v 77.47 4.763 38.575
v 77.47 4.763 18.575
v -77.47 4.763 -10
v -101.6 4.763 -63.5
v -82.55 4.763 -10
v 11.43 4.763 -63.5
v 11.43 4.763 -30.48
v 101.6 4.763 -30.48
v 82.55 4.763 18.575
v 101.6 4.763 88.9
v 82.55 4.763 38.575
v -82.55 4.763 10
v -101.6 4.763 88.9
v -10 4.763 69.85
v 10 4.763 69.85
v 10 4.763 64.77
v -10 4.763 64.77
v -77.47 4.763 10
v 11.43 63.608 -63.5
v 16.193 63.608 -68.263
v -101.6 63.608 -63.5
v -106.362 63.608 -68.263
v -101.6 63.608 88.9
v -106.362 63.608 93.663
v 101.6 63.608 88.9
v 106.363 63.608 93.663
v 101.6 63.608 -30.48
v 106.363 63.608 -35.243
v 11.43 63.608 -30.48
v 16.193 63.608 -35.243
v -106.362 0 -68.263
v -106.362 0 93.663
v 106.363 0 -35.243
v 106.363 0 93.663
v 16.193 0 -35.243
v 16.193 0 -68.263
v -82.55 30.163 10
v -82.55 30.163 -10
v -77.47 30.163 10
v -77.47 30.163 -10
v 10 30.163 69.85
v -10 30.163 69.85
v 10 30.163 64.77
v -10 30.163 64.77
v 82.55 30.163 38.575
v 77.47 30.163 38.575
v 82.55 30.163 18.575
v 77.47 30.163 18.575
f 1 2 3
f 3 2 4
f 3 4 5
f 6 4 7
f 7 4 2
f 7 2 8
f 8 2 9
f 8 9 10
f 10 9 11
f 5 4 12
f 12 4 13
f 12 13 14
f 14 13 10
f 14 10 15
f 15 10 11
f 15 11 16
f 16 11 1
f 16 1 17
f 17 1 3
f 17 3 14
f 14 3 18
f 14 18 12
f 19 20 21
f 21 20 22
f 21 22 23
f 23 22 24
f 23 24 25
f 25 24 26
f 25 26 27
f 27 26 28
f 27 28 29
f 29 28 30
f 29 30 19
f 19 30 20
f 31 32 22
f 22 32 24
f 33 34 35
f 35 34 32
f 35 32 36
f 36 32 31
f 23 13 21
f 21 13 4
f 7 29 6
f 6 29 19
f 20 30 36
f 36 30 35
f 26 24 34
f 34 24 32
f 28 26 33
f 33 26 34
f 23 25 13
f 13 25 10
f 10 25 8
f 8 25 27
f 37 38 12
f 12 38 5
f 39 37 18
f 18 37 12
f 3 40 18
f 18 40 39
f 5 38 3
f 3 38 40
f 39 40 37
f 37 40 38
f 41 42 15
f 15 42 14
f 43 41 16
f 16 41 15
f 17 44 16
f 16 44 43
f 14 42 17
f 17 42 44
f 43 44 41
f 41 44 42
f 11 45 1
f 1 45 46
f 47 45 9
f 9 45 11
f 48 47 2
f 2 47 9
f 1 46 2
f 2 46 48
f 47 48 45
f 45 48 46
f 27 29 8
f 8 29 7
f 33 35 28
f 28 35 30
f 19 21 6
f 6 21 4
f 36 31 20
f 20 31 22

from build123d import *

# Parameters (mm, degrees)
CROQUIS1_W              = 212.725
CROQUIS1_H              = 187.325
CROQUIS1_W_2            = 203.2
CROQUIS1_H_2            = 177.8
SALIENTE_EXTRUIR1_DEPTH = 63.607999784
VACIADO1_T              = -4.7625
CROQUIS2_W              = 20
CROQUIS2_H              = 5.08
CROQUIS2_W_2            = 5.08
CROQUIS2_H_2            = 20
SALIENTE_EXTRUIR3_DEPTH = 25.4
CROQUIS2_5_W            = 5.08
CROQUIS2_5_H            = 20
CROQUIS2_5_W_2          = 20
CROQUIS2_5_H_2          = 5.08
SALIENTE_EXTRUIR4_DEPTH = 6.5
CROQUIS3_W              = 94.9325
CROQUIS3_H              = 63.1825
CORTAR_EXTRUIR1_DEPTH   = 156.343564234
SALIENTE_EXTRUIR5_DEPTH = 63.607999784
CROQUIS5_W              = 122.555
CROQUIS5_H              = 30.1625
CORTAR_EXTRUIR2_DEPTH   = 156.343564234
CROQUIS6_W              = 122.555
CROQUIS6_H              = 4.7625
SALIENTE_EXTRUIR6_DEPTH = 63.607999784
CROQUIS7_W              = 154.94
CROQUIS7_H              = 82.660152575
CORTAR_EXTRUIR3_DEPTH   = 58.845499784


with BuildPart() as part:
    # Croquis1 → Saliente-Extruir1 (new body)
    # profile 1 of 2: a face of its own
    with BuildSketch(Plane(origin=(0, 0, 0), x_dir=(1, 0, 0), z_dir=(0, 1, 0))):
        Rectangle(CROQUIS1_W, CROQUIS1_H)
        Rectangle(CROQUIS1_W_2, CROQUIS1_H_2, mode=Mode.SUBTRACT)
    # profile 2 of 2: a face of its own
    with BuildSketch(Plane(origin=(0, 0, 0), x_dir=(1, 0, 0), z_dir=(0, 1, 0))):
        Rectangle(CROQUIS1_W_2, CROQUIS1_H_2)
    extrude(amount=SALIENTE_EXTRUIR1_DEPTH)

    # Vaciado1
    vaciado1_openings = [part.faces().sort_by_distance(p)[0] for p in [
        (0, 63.607999784, 0),
    ]]
    offset(amount=VACIADO1_T, openings=vaciado1_openings, kind=Kind.INTERSECTION)

    # Croquis2 → Saliente-Extruir3 (add)
    with BuildSketch(Plane(origin=(0, 4.7625, 0), x_dir=(1, 0, 0), z_dir=(0, 1, 0))):
        with Locations((-44.45, 66.04)):
            Rectangle(CROQUIS2_W, CROQUIS2_H)
        with Locations((-80.01, 0)):
            Rectangle(CROQUIS2_W_2, CROQUIS2_H_2)
        with Locations((0, -67.31)):
            Rectangle(CROQUIS2_W, CROQUIS2_H)
        with Locations((80.01, -28.575)):
            Rectangle(CROQUIS2_W_2, CROQUIS2_H_2)
    extrude(amount=SALIENTE_EXTRUIR3_DEPTH)

    # Croquis2<5> → Saliente-Extruir4 (add)
    with BuildSketch(Plane(origin=(0, 4.7625, 0), x_dir=(1, 0, 0), z_dir=(0, 1, 0))):
        with Locations((-74.93, 0)):
            Rectangle(CROQUIS2_5_W, CROQUIS2_5_H)
        with Locations((0, -62.23)):
            Rectangle(CROQUIS2_5_W_2, CROQUIS2_5_H_2)
        with Locations((74.93, -28.575)):
            Rectangle(CROQUIS2_5_W, CROQUIS2_5_H)
    extrude(amount=SALIENTE_EXTRUIR4_DEPTH)

    # Croquis3 → Cortar-Extruir1 (cut, through all)
    with BuildSketch(Plane(origin=(0, 63.607999784, 0), x_dir=(1, 0, 0), z_dir=(0, 1, 0))):
        with Locations((58.89625, 62.07125)):
            Rectangle(CROQUIS3_W, CROQUIS3_H)
    extrude(amount=-CORTAR_EXTRUIR1_DEPTH, mode=Mode.SUBTRACT)

    # Croquis4 → Saliente-Extruir5 (add)
    with BuildSketch(Plane(origin=(0, 0, 0), x_dir=(1, 0, 0), z_dir=(0, 1, 0))):
        Polygon((11.43, 93.6625), (16.1925, 93.6625), (16.1925, 35.2425), (106.3625, 35.2425), (106.3625, 30.48), (11.43, 30.48), align=None)
    extrude(amount=SALIENTE_EXTRUIR5_DEPTH)

    # Croquis5 → Cortar-Extruir2 (cut, through all)
    with BuildSketch(Plane(origin=(0, 0, 0), x_dir=(1, 0, 0), z_dir=(0, 1, 0))):
        with Locations((-45.085, 78.58125)):
            Rectangle(CROQUIS5_W, CROQUIS5_H)
    extrude(amount=CORTAR_EXTRUIR2_DEPTH, mode=Mode.SUBTRACT)

    # Croquis6 → Saliente-Extruir6 (add)
    with BuildSketch(Plane(origin=(0, 0, 0), x_dir=(1, 0, 0), z_dir=(0, 1, 0))):
        with Locations((-45.085, 65.88125)):
            Rectangle(CROQUIS6_W, CROQUIS6_H)
    extrude(amount=SALIENTE_EXTRUIR6_DEPTH)

    # Croquis7 → Cortar-Extruir3 (cut)
    with BuildSketch(Plane(origin=(0, 63.607999784, 0), x_dir=(1, 0, 0), z_dir=(0, 1, 0))):
        with Locations((0, -23.439923713)):
            Rectangle(CROQUIS7_W, CROQUIS7_H)
    extrude(amount=-CORTAR_EXTRUIR3_DEPTH, mode=Mode.SUBTRACT)


solid = part.part
